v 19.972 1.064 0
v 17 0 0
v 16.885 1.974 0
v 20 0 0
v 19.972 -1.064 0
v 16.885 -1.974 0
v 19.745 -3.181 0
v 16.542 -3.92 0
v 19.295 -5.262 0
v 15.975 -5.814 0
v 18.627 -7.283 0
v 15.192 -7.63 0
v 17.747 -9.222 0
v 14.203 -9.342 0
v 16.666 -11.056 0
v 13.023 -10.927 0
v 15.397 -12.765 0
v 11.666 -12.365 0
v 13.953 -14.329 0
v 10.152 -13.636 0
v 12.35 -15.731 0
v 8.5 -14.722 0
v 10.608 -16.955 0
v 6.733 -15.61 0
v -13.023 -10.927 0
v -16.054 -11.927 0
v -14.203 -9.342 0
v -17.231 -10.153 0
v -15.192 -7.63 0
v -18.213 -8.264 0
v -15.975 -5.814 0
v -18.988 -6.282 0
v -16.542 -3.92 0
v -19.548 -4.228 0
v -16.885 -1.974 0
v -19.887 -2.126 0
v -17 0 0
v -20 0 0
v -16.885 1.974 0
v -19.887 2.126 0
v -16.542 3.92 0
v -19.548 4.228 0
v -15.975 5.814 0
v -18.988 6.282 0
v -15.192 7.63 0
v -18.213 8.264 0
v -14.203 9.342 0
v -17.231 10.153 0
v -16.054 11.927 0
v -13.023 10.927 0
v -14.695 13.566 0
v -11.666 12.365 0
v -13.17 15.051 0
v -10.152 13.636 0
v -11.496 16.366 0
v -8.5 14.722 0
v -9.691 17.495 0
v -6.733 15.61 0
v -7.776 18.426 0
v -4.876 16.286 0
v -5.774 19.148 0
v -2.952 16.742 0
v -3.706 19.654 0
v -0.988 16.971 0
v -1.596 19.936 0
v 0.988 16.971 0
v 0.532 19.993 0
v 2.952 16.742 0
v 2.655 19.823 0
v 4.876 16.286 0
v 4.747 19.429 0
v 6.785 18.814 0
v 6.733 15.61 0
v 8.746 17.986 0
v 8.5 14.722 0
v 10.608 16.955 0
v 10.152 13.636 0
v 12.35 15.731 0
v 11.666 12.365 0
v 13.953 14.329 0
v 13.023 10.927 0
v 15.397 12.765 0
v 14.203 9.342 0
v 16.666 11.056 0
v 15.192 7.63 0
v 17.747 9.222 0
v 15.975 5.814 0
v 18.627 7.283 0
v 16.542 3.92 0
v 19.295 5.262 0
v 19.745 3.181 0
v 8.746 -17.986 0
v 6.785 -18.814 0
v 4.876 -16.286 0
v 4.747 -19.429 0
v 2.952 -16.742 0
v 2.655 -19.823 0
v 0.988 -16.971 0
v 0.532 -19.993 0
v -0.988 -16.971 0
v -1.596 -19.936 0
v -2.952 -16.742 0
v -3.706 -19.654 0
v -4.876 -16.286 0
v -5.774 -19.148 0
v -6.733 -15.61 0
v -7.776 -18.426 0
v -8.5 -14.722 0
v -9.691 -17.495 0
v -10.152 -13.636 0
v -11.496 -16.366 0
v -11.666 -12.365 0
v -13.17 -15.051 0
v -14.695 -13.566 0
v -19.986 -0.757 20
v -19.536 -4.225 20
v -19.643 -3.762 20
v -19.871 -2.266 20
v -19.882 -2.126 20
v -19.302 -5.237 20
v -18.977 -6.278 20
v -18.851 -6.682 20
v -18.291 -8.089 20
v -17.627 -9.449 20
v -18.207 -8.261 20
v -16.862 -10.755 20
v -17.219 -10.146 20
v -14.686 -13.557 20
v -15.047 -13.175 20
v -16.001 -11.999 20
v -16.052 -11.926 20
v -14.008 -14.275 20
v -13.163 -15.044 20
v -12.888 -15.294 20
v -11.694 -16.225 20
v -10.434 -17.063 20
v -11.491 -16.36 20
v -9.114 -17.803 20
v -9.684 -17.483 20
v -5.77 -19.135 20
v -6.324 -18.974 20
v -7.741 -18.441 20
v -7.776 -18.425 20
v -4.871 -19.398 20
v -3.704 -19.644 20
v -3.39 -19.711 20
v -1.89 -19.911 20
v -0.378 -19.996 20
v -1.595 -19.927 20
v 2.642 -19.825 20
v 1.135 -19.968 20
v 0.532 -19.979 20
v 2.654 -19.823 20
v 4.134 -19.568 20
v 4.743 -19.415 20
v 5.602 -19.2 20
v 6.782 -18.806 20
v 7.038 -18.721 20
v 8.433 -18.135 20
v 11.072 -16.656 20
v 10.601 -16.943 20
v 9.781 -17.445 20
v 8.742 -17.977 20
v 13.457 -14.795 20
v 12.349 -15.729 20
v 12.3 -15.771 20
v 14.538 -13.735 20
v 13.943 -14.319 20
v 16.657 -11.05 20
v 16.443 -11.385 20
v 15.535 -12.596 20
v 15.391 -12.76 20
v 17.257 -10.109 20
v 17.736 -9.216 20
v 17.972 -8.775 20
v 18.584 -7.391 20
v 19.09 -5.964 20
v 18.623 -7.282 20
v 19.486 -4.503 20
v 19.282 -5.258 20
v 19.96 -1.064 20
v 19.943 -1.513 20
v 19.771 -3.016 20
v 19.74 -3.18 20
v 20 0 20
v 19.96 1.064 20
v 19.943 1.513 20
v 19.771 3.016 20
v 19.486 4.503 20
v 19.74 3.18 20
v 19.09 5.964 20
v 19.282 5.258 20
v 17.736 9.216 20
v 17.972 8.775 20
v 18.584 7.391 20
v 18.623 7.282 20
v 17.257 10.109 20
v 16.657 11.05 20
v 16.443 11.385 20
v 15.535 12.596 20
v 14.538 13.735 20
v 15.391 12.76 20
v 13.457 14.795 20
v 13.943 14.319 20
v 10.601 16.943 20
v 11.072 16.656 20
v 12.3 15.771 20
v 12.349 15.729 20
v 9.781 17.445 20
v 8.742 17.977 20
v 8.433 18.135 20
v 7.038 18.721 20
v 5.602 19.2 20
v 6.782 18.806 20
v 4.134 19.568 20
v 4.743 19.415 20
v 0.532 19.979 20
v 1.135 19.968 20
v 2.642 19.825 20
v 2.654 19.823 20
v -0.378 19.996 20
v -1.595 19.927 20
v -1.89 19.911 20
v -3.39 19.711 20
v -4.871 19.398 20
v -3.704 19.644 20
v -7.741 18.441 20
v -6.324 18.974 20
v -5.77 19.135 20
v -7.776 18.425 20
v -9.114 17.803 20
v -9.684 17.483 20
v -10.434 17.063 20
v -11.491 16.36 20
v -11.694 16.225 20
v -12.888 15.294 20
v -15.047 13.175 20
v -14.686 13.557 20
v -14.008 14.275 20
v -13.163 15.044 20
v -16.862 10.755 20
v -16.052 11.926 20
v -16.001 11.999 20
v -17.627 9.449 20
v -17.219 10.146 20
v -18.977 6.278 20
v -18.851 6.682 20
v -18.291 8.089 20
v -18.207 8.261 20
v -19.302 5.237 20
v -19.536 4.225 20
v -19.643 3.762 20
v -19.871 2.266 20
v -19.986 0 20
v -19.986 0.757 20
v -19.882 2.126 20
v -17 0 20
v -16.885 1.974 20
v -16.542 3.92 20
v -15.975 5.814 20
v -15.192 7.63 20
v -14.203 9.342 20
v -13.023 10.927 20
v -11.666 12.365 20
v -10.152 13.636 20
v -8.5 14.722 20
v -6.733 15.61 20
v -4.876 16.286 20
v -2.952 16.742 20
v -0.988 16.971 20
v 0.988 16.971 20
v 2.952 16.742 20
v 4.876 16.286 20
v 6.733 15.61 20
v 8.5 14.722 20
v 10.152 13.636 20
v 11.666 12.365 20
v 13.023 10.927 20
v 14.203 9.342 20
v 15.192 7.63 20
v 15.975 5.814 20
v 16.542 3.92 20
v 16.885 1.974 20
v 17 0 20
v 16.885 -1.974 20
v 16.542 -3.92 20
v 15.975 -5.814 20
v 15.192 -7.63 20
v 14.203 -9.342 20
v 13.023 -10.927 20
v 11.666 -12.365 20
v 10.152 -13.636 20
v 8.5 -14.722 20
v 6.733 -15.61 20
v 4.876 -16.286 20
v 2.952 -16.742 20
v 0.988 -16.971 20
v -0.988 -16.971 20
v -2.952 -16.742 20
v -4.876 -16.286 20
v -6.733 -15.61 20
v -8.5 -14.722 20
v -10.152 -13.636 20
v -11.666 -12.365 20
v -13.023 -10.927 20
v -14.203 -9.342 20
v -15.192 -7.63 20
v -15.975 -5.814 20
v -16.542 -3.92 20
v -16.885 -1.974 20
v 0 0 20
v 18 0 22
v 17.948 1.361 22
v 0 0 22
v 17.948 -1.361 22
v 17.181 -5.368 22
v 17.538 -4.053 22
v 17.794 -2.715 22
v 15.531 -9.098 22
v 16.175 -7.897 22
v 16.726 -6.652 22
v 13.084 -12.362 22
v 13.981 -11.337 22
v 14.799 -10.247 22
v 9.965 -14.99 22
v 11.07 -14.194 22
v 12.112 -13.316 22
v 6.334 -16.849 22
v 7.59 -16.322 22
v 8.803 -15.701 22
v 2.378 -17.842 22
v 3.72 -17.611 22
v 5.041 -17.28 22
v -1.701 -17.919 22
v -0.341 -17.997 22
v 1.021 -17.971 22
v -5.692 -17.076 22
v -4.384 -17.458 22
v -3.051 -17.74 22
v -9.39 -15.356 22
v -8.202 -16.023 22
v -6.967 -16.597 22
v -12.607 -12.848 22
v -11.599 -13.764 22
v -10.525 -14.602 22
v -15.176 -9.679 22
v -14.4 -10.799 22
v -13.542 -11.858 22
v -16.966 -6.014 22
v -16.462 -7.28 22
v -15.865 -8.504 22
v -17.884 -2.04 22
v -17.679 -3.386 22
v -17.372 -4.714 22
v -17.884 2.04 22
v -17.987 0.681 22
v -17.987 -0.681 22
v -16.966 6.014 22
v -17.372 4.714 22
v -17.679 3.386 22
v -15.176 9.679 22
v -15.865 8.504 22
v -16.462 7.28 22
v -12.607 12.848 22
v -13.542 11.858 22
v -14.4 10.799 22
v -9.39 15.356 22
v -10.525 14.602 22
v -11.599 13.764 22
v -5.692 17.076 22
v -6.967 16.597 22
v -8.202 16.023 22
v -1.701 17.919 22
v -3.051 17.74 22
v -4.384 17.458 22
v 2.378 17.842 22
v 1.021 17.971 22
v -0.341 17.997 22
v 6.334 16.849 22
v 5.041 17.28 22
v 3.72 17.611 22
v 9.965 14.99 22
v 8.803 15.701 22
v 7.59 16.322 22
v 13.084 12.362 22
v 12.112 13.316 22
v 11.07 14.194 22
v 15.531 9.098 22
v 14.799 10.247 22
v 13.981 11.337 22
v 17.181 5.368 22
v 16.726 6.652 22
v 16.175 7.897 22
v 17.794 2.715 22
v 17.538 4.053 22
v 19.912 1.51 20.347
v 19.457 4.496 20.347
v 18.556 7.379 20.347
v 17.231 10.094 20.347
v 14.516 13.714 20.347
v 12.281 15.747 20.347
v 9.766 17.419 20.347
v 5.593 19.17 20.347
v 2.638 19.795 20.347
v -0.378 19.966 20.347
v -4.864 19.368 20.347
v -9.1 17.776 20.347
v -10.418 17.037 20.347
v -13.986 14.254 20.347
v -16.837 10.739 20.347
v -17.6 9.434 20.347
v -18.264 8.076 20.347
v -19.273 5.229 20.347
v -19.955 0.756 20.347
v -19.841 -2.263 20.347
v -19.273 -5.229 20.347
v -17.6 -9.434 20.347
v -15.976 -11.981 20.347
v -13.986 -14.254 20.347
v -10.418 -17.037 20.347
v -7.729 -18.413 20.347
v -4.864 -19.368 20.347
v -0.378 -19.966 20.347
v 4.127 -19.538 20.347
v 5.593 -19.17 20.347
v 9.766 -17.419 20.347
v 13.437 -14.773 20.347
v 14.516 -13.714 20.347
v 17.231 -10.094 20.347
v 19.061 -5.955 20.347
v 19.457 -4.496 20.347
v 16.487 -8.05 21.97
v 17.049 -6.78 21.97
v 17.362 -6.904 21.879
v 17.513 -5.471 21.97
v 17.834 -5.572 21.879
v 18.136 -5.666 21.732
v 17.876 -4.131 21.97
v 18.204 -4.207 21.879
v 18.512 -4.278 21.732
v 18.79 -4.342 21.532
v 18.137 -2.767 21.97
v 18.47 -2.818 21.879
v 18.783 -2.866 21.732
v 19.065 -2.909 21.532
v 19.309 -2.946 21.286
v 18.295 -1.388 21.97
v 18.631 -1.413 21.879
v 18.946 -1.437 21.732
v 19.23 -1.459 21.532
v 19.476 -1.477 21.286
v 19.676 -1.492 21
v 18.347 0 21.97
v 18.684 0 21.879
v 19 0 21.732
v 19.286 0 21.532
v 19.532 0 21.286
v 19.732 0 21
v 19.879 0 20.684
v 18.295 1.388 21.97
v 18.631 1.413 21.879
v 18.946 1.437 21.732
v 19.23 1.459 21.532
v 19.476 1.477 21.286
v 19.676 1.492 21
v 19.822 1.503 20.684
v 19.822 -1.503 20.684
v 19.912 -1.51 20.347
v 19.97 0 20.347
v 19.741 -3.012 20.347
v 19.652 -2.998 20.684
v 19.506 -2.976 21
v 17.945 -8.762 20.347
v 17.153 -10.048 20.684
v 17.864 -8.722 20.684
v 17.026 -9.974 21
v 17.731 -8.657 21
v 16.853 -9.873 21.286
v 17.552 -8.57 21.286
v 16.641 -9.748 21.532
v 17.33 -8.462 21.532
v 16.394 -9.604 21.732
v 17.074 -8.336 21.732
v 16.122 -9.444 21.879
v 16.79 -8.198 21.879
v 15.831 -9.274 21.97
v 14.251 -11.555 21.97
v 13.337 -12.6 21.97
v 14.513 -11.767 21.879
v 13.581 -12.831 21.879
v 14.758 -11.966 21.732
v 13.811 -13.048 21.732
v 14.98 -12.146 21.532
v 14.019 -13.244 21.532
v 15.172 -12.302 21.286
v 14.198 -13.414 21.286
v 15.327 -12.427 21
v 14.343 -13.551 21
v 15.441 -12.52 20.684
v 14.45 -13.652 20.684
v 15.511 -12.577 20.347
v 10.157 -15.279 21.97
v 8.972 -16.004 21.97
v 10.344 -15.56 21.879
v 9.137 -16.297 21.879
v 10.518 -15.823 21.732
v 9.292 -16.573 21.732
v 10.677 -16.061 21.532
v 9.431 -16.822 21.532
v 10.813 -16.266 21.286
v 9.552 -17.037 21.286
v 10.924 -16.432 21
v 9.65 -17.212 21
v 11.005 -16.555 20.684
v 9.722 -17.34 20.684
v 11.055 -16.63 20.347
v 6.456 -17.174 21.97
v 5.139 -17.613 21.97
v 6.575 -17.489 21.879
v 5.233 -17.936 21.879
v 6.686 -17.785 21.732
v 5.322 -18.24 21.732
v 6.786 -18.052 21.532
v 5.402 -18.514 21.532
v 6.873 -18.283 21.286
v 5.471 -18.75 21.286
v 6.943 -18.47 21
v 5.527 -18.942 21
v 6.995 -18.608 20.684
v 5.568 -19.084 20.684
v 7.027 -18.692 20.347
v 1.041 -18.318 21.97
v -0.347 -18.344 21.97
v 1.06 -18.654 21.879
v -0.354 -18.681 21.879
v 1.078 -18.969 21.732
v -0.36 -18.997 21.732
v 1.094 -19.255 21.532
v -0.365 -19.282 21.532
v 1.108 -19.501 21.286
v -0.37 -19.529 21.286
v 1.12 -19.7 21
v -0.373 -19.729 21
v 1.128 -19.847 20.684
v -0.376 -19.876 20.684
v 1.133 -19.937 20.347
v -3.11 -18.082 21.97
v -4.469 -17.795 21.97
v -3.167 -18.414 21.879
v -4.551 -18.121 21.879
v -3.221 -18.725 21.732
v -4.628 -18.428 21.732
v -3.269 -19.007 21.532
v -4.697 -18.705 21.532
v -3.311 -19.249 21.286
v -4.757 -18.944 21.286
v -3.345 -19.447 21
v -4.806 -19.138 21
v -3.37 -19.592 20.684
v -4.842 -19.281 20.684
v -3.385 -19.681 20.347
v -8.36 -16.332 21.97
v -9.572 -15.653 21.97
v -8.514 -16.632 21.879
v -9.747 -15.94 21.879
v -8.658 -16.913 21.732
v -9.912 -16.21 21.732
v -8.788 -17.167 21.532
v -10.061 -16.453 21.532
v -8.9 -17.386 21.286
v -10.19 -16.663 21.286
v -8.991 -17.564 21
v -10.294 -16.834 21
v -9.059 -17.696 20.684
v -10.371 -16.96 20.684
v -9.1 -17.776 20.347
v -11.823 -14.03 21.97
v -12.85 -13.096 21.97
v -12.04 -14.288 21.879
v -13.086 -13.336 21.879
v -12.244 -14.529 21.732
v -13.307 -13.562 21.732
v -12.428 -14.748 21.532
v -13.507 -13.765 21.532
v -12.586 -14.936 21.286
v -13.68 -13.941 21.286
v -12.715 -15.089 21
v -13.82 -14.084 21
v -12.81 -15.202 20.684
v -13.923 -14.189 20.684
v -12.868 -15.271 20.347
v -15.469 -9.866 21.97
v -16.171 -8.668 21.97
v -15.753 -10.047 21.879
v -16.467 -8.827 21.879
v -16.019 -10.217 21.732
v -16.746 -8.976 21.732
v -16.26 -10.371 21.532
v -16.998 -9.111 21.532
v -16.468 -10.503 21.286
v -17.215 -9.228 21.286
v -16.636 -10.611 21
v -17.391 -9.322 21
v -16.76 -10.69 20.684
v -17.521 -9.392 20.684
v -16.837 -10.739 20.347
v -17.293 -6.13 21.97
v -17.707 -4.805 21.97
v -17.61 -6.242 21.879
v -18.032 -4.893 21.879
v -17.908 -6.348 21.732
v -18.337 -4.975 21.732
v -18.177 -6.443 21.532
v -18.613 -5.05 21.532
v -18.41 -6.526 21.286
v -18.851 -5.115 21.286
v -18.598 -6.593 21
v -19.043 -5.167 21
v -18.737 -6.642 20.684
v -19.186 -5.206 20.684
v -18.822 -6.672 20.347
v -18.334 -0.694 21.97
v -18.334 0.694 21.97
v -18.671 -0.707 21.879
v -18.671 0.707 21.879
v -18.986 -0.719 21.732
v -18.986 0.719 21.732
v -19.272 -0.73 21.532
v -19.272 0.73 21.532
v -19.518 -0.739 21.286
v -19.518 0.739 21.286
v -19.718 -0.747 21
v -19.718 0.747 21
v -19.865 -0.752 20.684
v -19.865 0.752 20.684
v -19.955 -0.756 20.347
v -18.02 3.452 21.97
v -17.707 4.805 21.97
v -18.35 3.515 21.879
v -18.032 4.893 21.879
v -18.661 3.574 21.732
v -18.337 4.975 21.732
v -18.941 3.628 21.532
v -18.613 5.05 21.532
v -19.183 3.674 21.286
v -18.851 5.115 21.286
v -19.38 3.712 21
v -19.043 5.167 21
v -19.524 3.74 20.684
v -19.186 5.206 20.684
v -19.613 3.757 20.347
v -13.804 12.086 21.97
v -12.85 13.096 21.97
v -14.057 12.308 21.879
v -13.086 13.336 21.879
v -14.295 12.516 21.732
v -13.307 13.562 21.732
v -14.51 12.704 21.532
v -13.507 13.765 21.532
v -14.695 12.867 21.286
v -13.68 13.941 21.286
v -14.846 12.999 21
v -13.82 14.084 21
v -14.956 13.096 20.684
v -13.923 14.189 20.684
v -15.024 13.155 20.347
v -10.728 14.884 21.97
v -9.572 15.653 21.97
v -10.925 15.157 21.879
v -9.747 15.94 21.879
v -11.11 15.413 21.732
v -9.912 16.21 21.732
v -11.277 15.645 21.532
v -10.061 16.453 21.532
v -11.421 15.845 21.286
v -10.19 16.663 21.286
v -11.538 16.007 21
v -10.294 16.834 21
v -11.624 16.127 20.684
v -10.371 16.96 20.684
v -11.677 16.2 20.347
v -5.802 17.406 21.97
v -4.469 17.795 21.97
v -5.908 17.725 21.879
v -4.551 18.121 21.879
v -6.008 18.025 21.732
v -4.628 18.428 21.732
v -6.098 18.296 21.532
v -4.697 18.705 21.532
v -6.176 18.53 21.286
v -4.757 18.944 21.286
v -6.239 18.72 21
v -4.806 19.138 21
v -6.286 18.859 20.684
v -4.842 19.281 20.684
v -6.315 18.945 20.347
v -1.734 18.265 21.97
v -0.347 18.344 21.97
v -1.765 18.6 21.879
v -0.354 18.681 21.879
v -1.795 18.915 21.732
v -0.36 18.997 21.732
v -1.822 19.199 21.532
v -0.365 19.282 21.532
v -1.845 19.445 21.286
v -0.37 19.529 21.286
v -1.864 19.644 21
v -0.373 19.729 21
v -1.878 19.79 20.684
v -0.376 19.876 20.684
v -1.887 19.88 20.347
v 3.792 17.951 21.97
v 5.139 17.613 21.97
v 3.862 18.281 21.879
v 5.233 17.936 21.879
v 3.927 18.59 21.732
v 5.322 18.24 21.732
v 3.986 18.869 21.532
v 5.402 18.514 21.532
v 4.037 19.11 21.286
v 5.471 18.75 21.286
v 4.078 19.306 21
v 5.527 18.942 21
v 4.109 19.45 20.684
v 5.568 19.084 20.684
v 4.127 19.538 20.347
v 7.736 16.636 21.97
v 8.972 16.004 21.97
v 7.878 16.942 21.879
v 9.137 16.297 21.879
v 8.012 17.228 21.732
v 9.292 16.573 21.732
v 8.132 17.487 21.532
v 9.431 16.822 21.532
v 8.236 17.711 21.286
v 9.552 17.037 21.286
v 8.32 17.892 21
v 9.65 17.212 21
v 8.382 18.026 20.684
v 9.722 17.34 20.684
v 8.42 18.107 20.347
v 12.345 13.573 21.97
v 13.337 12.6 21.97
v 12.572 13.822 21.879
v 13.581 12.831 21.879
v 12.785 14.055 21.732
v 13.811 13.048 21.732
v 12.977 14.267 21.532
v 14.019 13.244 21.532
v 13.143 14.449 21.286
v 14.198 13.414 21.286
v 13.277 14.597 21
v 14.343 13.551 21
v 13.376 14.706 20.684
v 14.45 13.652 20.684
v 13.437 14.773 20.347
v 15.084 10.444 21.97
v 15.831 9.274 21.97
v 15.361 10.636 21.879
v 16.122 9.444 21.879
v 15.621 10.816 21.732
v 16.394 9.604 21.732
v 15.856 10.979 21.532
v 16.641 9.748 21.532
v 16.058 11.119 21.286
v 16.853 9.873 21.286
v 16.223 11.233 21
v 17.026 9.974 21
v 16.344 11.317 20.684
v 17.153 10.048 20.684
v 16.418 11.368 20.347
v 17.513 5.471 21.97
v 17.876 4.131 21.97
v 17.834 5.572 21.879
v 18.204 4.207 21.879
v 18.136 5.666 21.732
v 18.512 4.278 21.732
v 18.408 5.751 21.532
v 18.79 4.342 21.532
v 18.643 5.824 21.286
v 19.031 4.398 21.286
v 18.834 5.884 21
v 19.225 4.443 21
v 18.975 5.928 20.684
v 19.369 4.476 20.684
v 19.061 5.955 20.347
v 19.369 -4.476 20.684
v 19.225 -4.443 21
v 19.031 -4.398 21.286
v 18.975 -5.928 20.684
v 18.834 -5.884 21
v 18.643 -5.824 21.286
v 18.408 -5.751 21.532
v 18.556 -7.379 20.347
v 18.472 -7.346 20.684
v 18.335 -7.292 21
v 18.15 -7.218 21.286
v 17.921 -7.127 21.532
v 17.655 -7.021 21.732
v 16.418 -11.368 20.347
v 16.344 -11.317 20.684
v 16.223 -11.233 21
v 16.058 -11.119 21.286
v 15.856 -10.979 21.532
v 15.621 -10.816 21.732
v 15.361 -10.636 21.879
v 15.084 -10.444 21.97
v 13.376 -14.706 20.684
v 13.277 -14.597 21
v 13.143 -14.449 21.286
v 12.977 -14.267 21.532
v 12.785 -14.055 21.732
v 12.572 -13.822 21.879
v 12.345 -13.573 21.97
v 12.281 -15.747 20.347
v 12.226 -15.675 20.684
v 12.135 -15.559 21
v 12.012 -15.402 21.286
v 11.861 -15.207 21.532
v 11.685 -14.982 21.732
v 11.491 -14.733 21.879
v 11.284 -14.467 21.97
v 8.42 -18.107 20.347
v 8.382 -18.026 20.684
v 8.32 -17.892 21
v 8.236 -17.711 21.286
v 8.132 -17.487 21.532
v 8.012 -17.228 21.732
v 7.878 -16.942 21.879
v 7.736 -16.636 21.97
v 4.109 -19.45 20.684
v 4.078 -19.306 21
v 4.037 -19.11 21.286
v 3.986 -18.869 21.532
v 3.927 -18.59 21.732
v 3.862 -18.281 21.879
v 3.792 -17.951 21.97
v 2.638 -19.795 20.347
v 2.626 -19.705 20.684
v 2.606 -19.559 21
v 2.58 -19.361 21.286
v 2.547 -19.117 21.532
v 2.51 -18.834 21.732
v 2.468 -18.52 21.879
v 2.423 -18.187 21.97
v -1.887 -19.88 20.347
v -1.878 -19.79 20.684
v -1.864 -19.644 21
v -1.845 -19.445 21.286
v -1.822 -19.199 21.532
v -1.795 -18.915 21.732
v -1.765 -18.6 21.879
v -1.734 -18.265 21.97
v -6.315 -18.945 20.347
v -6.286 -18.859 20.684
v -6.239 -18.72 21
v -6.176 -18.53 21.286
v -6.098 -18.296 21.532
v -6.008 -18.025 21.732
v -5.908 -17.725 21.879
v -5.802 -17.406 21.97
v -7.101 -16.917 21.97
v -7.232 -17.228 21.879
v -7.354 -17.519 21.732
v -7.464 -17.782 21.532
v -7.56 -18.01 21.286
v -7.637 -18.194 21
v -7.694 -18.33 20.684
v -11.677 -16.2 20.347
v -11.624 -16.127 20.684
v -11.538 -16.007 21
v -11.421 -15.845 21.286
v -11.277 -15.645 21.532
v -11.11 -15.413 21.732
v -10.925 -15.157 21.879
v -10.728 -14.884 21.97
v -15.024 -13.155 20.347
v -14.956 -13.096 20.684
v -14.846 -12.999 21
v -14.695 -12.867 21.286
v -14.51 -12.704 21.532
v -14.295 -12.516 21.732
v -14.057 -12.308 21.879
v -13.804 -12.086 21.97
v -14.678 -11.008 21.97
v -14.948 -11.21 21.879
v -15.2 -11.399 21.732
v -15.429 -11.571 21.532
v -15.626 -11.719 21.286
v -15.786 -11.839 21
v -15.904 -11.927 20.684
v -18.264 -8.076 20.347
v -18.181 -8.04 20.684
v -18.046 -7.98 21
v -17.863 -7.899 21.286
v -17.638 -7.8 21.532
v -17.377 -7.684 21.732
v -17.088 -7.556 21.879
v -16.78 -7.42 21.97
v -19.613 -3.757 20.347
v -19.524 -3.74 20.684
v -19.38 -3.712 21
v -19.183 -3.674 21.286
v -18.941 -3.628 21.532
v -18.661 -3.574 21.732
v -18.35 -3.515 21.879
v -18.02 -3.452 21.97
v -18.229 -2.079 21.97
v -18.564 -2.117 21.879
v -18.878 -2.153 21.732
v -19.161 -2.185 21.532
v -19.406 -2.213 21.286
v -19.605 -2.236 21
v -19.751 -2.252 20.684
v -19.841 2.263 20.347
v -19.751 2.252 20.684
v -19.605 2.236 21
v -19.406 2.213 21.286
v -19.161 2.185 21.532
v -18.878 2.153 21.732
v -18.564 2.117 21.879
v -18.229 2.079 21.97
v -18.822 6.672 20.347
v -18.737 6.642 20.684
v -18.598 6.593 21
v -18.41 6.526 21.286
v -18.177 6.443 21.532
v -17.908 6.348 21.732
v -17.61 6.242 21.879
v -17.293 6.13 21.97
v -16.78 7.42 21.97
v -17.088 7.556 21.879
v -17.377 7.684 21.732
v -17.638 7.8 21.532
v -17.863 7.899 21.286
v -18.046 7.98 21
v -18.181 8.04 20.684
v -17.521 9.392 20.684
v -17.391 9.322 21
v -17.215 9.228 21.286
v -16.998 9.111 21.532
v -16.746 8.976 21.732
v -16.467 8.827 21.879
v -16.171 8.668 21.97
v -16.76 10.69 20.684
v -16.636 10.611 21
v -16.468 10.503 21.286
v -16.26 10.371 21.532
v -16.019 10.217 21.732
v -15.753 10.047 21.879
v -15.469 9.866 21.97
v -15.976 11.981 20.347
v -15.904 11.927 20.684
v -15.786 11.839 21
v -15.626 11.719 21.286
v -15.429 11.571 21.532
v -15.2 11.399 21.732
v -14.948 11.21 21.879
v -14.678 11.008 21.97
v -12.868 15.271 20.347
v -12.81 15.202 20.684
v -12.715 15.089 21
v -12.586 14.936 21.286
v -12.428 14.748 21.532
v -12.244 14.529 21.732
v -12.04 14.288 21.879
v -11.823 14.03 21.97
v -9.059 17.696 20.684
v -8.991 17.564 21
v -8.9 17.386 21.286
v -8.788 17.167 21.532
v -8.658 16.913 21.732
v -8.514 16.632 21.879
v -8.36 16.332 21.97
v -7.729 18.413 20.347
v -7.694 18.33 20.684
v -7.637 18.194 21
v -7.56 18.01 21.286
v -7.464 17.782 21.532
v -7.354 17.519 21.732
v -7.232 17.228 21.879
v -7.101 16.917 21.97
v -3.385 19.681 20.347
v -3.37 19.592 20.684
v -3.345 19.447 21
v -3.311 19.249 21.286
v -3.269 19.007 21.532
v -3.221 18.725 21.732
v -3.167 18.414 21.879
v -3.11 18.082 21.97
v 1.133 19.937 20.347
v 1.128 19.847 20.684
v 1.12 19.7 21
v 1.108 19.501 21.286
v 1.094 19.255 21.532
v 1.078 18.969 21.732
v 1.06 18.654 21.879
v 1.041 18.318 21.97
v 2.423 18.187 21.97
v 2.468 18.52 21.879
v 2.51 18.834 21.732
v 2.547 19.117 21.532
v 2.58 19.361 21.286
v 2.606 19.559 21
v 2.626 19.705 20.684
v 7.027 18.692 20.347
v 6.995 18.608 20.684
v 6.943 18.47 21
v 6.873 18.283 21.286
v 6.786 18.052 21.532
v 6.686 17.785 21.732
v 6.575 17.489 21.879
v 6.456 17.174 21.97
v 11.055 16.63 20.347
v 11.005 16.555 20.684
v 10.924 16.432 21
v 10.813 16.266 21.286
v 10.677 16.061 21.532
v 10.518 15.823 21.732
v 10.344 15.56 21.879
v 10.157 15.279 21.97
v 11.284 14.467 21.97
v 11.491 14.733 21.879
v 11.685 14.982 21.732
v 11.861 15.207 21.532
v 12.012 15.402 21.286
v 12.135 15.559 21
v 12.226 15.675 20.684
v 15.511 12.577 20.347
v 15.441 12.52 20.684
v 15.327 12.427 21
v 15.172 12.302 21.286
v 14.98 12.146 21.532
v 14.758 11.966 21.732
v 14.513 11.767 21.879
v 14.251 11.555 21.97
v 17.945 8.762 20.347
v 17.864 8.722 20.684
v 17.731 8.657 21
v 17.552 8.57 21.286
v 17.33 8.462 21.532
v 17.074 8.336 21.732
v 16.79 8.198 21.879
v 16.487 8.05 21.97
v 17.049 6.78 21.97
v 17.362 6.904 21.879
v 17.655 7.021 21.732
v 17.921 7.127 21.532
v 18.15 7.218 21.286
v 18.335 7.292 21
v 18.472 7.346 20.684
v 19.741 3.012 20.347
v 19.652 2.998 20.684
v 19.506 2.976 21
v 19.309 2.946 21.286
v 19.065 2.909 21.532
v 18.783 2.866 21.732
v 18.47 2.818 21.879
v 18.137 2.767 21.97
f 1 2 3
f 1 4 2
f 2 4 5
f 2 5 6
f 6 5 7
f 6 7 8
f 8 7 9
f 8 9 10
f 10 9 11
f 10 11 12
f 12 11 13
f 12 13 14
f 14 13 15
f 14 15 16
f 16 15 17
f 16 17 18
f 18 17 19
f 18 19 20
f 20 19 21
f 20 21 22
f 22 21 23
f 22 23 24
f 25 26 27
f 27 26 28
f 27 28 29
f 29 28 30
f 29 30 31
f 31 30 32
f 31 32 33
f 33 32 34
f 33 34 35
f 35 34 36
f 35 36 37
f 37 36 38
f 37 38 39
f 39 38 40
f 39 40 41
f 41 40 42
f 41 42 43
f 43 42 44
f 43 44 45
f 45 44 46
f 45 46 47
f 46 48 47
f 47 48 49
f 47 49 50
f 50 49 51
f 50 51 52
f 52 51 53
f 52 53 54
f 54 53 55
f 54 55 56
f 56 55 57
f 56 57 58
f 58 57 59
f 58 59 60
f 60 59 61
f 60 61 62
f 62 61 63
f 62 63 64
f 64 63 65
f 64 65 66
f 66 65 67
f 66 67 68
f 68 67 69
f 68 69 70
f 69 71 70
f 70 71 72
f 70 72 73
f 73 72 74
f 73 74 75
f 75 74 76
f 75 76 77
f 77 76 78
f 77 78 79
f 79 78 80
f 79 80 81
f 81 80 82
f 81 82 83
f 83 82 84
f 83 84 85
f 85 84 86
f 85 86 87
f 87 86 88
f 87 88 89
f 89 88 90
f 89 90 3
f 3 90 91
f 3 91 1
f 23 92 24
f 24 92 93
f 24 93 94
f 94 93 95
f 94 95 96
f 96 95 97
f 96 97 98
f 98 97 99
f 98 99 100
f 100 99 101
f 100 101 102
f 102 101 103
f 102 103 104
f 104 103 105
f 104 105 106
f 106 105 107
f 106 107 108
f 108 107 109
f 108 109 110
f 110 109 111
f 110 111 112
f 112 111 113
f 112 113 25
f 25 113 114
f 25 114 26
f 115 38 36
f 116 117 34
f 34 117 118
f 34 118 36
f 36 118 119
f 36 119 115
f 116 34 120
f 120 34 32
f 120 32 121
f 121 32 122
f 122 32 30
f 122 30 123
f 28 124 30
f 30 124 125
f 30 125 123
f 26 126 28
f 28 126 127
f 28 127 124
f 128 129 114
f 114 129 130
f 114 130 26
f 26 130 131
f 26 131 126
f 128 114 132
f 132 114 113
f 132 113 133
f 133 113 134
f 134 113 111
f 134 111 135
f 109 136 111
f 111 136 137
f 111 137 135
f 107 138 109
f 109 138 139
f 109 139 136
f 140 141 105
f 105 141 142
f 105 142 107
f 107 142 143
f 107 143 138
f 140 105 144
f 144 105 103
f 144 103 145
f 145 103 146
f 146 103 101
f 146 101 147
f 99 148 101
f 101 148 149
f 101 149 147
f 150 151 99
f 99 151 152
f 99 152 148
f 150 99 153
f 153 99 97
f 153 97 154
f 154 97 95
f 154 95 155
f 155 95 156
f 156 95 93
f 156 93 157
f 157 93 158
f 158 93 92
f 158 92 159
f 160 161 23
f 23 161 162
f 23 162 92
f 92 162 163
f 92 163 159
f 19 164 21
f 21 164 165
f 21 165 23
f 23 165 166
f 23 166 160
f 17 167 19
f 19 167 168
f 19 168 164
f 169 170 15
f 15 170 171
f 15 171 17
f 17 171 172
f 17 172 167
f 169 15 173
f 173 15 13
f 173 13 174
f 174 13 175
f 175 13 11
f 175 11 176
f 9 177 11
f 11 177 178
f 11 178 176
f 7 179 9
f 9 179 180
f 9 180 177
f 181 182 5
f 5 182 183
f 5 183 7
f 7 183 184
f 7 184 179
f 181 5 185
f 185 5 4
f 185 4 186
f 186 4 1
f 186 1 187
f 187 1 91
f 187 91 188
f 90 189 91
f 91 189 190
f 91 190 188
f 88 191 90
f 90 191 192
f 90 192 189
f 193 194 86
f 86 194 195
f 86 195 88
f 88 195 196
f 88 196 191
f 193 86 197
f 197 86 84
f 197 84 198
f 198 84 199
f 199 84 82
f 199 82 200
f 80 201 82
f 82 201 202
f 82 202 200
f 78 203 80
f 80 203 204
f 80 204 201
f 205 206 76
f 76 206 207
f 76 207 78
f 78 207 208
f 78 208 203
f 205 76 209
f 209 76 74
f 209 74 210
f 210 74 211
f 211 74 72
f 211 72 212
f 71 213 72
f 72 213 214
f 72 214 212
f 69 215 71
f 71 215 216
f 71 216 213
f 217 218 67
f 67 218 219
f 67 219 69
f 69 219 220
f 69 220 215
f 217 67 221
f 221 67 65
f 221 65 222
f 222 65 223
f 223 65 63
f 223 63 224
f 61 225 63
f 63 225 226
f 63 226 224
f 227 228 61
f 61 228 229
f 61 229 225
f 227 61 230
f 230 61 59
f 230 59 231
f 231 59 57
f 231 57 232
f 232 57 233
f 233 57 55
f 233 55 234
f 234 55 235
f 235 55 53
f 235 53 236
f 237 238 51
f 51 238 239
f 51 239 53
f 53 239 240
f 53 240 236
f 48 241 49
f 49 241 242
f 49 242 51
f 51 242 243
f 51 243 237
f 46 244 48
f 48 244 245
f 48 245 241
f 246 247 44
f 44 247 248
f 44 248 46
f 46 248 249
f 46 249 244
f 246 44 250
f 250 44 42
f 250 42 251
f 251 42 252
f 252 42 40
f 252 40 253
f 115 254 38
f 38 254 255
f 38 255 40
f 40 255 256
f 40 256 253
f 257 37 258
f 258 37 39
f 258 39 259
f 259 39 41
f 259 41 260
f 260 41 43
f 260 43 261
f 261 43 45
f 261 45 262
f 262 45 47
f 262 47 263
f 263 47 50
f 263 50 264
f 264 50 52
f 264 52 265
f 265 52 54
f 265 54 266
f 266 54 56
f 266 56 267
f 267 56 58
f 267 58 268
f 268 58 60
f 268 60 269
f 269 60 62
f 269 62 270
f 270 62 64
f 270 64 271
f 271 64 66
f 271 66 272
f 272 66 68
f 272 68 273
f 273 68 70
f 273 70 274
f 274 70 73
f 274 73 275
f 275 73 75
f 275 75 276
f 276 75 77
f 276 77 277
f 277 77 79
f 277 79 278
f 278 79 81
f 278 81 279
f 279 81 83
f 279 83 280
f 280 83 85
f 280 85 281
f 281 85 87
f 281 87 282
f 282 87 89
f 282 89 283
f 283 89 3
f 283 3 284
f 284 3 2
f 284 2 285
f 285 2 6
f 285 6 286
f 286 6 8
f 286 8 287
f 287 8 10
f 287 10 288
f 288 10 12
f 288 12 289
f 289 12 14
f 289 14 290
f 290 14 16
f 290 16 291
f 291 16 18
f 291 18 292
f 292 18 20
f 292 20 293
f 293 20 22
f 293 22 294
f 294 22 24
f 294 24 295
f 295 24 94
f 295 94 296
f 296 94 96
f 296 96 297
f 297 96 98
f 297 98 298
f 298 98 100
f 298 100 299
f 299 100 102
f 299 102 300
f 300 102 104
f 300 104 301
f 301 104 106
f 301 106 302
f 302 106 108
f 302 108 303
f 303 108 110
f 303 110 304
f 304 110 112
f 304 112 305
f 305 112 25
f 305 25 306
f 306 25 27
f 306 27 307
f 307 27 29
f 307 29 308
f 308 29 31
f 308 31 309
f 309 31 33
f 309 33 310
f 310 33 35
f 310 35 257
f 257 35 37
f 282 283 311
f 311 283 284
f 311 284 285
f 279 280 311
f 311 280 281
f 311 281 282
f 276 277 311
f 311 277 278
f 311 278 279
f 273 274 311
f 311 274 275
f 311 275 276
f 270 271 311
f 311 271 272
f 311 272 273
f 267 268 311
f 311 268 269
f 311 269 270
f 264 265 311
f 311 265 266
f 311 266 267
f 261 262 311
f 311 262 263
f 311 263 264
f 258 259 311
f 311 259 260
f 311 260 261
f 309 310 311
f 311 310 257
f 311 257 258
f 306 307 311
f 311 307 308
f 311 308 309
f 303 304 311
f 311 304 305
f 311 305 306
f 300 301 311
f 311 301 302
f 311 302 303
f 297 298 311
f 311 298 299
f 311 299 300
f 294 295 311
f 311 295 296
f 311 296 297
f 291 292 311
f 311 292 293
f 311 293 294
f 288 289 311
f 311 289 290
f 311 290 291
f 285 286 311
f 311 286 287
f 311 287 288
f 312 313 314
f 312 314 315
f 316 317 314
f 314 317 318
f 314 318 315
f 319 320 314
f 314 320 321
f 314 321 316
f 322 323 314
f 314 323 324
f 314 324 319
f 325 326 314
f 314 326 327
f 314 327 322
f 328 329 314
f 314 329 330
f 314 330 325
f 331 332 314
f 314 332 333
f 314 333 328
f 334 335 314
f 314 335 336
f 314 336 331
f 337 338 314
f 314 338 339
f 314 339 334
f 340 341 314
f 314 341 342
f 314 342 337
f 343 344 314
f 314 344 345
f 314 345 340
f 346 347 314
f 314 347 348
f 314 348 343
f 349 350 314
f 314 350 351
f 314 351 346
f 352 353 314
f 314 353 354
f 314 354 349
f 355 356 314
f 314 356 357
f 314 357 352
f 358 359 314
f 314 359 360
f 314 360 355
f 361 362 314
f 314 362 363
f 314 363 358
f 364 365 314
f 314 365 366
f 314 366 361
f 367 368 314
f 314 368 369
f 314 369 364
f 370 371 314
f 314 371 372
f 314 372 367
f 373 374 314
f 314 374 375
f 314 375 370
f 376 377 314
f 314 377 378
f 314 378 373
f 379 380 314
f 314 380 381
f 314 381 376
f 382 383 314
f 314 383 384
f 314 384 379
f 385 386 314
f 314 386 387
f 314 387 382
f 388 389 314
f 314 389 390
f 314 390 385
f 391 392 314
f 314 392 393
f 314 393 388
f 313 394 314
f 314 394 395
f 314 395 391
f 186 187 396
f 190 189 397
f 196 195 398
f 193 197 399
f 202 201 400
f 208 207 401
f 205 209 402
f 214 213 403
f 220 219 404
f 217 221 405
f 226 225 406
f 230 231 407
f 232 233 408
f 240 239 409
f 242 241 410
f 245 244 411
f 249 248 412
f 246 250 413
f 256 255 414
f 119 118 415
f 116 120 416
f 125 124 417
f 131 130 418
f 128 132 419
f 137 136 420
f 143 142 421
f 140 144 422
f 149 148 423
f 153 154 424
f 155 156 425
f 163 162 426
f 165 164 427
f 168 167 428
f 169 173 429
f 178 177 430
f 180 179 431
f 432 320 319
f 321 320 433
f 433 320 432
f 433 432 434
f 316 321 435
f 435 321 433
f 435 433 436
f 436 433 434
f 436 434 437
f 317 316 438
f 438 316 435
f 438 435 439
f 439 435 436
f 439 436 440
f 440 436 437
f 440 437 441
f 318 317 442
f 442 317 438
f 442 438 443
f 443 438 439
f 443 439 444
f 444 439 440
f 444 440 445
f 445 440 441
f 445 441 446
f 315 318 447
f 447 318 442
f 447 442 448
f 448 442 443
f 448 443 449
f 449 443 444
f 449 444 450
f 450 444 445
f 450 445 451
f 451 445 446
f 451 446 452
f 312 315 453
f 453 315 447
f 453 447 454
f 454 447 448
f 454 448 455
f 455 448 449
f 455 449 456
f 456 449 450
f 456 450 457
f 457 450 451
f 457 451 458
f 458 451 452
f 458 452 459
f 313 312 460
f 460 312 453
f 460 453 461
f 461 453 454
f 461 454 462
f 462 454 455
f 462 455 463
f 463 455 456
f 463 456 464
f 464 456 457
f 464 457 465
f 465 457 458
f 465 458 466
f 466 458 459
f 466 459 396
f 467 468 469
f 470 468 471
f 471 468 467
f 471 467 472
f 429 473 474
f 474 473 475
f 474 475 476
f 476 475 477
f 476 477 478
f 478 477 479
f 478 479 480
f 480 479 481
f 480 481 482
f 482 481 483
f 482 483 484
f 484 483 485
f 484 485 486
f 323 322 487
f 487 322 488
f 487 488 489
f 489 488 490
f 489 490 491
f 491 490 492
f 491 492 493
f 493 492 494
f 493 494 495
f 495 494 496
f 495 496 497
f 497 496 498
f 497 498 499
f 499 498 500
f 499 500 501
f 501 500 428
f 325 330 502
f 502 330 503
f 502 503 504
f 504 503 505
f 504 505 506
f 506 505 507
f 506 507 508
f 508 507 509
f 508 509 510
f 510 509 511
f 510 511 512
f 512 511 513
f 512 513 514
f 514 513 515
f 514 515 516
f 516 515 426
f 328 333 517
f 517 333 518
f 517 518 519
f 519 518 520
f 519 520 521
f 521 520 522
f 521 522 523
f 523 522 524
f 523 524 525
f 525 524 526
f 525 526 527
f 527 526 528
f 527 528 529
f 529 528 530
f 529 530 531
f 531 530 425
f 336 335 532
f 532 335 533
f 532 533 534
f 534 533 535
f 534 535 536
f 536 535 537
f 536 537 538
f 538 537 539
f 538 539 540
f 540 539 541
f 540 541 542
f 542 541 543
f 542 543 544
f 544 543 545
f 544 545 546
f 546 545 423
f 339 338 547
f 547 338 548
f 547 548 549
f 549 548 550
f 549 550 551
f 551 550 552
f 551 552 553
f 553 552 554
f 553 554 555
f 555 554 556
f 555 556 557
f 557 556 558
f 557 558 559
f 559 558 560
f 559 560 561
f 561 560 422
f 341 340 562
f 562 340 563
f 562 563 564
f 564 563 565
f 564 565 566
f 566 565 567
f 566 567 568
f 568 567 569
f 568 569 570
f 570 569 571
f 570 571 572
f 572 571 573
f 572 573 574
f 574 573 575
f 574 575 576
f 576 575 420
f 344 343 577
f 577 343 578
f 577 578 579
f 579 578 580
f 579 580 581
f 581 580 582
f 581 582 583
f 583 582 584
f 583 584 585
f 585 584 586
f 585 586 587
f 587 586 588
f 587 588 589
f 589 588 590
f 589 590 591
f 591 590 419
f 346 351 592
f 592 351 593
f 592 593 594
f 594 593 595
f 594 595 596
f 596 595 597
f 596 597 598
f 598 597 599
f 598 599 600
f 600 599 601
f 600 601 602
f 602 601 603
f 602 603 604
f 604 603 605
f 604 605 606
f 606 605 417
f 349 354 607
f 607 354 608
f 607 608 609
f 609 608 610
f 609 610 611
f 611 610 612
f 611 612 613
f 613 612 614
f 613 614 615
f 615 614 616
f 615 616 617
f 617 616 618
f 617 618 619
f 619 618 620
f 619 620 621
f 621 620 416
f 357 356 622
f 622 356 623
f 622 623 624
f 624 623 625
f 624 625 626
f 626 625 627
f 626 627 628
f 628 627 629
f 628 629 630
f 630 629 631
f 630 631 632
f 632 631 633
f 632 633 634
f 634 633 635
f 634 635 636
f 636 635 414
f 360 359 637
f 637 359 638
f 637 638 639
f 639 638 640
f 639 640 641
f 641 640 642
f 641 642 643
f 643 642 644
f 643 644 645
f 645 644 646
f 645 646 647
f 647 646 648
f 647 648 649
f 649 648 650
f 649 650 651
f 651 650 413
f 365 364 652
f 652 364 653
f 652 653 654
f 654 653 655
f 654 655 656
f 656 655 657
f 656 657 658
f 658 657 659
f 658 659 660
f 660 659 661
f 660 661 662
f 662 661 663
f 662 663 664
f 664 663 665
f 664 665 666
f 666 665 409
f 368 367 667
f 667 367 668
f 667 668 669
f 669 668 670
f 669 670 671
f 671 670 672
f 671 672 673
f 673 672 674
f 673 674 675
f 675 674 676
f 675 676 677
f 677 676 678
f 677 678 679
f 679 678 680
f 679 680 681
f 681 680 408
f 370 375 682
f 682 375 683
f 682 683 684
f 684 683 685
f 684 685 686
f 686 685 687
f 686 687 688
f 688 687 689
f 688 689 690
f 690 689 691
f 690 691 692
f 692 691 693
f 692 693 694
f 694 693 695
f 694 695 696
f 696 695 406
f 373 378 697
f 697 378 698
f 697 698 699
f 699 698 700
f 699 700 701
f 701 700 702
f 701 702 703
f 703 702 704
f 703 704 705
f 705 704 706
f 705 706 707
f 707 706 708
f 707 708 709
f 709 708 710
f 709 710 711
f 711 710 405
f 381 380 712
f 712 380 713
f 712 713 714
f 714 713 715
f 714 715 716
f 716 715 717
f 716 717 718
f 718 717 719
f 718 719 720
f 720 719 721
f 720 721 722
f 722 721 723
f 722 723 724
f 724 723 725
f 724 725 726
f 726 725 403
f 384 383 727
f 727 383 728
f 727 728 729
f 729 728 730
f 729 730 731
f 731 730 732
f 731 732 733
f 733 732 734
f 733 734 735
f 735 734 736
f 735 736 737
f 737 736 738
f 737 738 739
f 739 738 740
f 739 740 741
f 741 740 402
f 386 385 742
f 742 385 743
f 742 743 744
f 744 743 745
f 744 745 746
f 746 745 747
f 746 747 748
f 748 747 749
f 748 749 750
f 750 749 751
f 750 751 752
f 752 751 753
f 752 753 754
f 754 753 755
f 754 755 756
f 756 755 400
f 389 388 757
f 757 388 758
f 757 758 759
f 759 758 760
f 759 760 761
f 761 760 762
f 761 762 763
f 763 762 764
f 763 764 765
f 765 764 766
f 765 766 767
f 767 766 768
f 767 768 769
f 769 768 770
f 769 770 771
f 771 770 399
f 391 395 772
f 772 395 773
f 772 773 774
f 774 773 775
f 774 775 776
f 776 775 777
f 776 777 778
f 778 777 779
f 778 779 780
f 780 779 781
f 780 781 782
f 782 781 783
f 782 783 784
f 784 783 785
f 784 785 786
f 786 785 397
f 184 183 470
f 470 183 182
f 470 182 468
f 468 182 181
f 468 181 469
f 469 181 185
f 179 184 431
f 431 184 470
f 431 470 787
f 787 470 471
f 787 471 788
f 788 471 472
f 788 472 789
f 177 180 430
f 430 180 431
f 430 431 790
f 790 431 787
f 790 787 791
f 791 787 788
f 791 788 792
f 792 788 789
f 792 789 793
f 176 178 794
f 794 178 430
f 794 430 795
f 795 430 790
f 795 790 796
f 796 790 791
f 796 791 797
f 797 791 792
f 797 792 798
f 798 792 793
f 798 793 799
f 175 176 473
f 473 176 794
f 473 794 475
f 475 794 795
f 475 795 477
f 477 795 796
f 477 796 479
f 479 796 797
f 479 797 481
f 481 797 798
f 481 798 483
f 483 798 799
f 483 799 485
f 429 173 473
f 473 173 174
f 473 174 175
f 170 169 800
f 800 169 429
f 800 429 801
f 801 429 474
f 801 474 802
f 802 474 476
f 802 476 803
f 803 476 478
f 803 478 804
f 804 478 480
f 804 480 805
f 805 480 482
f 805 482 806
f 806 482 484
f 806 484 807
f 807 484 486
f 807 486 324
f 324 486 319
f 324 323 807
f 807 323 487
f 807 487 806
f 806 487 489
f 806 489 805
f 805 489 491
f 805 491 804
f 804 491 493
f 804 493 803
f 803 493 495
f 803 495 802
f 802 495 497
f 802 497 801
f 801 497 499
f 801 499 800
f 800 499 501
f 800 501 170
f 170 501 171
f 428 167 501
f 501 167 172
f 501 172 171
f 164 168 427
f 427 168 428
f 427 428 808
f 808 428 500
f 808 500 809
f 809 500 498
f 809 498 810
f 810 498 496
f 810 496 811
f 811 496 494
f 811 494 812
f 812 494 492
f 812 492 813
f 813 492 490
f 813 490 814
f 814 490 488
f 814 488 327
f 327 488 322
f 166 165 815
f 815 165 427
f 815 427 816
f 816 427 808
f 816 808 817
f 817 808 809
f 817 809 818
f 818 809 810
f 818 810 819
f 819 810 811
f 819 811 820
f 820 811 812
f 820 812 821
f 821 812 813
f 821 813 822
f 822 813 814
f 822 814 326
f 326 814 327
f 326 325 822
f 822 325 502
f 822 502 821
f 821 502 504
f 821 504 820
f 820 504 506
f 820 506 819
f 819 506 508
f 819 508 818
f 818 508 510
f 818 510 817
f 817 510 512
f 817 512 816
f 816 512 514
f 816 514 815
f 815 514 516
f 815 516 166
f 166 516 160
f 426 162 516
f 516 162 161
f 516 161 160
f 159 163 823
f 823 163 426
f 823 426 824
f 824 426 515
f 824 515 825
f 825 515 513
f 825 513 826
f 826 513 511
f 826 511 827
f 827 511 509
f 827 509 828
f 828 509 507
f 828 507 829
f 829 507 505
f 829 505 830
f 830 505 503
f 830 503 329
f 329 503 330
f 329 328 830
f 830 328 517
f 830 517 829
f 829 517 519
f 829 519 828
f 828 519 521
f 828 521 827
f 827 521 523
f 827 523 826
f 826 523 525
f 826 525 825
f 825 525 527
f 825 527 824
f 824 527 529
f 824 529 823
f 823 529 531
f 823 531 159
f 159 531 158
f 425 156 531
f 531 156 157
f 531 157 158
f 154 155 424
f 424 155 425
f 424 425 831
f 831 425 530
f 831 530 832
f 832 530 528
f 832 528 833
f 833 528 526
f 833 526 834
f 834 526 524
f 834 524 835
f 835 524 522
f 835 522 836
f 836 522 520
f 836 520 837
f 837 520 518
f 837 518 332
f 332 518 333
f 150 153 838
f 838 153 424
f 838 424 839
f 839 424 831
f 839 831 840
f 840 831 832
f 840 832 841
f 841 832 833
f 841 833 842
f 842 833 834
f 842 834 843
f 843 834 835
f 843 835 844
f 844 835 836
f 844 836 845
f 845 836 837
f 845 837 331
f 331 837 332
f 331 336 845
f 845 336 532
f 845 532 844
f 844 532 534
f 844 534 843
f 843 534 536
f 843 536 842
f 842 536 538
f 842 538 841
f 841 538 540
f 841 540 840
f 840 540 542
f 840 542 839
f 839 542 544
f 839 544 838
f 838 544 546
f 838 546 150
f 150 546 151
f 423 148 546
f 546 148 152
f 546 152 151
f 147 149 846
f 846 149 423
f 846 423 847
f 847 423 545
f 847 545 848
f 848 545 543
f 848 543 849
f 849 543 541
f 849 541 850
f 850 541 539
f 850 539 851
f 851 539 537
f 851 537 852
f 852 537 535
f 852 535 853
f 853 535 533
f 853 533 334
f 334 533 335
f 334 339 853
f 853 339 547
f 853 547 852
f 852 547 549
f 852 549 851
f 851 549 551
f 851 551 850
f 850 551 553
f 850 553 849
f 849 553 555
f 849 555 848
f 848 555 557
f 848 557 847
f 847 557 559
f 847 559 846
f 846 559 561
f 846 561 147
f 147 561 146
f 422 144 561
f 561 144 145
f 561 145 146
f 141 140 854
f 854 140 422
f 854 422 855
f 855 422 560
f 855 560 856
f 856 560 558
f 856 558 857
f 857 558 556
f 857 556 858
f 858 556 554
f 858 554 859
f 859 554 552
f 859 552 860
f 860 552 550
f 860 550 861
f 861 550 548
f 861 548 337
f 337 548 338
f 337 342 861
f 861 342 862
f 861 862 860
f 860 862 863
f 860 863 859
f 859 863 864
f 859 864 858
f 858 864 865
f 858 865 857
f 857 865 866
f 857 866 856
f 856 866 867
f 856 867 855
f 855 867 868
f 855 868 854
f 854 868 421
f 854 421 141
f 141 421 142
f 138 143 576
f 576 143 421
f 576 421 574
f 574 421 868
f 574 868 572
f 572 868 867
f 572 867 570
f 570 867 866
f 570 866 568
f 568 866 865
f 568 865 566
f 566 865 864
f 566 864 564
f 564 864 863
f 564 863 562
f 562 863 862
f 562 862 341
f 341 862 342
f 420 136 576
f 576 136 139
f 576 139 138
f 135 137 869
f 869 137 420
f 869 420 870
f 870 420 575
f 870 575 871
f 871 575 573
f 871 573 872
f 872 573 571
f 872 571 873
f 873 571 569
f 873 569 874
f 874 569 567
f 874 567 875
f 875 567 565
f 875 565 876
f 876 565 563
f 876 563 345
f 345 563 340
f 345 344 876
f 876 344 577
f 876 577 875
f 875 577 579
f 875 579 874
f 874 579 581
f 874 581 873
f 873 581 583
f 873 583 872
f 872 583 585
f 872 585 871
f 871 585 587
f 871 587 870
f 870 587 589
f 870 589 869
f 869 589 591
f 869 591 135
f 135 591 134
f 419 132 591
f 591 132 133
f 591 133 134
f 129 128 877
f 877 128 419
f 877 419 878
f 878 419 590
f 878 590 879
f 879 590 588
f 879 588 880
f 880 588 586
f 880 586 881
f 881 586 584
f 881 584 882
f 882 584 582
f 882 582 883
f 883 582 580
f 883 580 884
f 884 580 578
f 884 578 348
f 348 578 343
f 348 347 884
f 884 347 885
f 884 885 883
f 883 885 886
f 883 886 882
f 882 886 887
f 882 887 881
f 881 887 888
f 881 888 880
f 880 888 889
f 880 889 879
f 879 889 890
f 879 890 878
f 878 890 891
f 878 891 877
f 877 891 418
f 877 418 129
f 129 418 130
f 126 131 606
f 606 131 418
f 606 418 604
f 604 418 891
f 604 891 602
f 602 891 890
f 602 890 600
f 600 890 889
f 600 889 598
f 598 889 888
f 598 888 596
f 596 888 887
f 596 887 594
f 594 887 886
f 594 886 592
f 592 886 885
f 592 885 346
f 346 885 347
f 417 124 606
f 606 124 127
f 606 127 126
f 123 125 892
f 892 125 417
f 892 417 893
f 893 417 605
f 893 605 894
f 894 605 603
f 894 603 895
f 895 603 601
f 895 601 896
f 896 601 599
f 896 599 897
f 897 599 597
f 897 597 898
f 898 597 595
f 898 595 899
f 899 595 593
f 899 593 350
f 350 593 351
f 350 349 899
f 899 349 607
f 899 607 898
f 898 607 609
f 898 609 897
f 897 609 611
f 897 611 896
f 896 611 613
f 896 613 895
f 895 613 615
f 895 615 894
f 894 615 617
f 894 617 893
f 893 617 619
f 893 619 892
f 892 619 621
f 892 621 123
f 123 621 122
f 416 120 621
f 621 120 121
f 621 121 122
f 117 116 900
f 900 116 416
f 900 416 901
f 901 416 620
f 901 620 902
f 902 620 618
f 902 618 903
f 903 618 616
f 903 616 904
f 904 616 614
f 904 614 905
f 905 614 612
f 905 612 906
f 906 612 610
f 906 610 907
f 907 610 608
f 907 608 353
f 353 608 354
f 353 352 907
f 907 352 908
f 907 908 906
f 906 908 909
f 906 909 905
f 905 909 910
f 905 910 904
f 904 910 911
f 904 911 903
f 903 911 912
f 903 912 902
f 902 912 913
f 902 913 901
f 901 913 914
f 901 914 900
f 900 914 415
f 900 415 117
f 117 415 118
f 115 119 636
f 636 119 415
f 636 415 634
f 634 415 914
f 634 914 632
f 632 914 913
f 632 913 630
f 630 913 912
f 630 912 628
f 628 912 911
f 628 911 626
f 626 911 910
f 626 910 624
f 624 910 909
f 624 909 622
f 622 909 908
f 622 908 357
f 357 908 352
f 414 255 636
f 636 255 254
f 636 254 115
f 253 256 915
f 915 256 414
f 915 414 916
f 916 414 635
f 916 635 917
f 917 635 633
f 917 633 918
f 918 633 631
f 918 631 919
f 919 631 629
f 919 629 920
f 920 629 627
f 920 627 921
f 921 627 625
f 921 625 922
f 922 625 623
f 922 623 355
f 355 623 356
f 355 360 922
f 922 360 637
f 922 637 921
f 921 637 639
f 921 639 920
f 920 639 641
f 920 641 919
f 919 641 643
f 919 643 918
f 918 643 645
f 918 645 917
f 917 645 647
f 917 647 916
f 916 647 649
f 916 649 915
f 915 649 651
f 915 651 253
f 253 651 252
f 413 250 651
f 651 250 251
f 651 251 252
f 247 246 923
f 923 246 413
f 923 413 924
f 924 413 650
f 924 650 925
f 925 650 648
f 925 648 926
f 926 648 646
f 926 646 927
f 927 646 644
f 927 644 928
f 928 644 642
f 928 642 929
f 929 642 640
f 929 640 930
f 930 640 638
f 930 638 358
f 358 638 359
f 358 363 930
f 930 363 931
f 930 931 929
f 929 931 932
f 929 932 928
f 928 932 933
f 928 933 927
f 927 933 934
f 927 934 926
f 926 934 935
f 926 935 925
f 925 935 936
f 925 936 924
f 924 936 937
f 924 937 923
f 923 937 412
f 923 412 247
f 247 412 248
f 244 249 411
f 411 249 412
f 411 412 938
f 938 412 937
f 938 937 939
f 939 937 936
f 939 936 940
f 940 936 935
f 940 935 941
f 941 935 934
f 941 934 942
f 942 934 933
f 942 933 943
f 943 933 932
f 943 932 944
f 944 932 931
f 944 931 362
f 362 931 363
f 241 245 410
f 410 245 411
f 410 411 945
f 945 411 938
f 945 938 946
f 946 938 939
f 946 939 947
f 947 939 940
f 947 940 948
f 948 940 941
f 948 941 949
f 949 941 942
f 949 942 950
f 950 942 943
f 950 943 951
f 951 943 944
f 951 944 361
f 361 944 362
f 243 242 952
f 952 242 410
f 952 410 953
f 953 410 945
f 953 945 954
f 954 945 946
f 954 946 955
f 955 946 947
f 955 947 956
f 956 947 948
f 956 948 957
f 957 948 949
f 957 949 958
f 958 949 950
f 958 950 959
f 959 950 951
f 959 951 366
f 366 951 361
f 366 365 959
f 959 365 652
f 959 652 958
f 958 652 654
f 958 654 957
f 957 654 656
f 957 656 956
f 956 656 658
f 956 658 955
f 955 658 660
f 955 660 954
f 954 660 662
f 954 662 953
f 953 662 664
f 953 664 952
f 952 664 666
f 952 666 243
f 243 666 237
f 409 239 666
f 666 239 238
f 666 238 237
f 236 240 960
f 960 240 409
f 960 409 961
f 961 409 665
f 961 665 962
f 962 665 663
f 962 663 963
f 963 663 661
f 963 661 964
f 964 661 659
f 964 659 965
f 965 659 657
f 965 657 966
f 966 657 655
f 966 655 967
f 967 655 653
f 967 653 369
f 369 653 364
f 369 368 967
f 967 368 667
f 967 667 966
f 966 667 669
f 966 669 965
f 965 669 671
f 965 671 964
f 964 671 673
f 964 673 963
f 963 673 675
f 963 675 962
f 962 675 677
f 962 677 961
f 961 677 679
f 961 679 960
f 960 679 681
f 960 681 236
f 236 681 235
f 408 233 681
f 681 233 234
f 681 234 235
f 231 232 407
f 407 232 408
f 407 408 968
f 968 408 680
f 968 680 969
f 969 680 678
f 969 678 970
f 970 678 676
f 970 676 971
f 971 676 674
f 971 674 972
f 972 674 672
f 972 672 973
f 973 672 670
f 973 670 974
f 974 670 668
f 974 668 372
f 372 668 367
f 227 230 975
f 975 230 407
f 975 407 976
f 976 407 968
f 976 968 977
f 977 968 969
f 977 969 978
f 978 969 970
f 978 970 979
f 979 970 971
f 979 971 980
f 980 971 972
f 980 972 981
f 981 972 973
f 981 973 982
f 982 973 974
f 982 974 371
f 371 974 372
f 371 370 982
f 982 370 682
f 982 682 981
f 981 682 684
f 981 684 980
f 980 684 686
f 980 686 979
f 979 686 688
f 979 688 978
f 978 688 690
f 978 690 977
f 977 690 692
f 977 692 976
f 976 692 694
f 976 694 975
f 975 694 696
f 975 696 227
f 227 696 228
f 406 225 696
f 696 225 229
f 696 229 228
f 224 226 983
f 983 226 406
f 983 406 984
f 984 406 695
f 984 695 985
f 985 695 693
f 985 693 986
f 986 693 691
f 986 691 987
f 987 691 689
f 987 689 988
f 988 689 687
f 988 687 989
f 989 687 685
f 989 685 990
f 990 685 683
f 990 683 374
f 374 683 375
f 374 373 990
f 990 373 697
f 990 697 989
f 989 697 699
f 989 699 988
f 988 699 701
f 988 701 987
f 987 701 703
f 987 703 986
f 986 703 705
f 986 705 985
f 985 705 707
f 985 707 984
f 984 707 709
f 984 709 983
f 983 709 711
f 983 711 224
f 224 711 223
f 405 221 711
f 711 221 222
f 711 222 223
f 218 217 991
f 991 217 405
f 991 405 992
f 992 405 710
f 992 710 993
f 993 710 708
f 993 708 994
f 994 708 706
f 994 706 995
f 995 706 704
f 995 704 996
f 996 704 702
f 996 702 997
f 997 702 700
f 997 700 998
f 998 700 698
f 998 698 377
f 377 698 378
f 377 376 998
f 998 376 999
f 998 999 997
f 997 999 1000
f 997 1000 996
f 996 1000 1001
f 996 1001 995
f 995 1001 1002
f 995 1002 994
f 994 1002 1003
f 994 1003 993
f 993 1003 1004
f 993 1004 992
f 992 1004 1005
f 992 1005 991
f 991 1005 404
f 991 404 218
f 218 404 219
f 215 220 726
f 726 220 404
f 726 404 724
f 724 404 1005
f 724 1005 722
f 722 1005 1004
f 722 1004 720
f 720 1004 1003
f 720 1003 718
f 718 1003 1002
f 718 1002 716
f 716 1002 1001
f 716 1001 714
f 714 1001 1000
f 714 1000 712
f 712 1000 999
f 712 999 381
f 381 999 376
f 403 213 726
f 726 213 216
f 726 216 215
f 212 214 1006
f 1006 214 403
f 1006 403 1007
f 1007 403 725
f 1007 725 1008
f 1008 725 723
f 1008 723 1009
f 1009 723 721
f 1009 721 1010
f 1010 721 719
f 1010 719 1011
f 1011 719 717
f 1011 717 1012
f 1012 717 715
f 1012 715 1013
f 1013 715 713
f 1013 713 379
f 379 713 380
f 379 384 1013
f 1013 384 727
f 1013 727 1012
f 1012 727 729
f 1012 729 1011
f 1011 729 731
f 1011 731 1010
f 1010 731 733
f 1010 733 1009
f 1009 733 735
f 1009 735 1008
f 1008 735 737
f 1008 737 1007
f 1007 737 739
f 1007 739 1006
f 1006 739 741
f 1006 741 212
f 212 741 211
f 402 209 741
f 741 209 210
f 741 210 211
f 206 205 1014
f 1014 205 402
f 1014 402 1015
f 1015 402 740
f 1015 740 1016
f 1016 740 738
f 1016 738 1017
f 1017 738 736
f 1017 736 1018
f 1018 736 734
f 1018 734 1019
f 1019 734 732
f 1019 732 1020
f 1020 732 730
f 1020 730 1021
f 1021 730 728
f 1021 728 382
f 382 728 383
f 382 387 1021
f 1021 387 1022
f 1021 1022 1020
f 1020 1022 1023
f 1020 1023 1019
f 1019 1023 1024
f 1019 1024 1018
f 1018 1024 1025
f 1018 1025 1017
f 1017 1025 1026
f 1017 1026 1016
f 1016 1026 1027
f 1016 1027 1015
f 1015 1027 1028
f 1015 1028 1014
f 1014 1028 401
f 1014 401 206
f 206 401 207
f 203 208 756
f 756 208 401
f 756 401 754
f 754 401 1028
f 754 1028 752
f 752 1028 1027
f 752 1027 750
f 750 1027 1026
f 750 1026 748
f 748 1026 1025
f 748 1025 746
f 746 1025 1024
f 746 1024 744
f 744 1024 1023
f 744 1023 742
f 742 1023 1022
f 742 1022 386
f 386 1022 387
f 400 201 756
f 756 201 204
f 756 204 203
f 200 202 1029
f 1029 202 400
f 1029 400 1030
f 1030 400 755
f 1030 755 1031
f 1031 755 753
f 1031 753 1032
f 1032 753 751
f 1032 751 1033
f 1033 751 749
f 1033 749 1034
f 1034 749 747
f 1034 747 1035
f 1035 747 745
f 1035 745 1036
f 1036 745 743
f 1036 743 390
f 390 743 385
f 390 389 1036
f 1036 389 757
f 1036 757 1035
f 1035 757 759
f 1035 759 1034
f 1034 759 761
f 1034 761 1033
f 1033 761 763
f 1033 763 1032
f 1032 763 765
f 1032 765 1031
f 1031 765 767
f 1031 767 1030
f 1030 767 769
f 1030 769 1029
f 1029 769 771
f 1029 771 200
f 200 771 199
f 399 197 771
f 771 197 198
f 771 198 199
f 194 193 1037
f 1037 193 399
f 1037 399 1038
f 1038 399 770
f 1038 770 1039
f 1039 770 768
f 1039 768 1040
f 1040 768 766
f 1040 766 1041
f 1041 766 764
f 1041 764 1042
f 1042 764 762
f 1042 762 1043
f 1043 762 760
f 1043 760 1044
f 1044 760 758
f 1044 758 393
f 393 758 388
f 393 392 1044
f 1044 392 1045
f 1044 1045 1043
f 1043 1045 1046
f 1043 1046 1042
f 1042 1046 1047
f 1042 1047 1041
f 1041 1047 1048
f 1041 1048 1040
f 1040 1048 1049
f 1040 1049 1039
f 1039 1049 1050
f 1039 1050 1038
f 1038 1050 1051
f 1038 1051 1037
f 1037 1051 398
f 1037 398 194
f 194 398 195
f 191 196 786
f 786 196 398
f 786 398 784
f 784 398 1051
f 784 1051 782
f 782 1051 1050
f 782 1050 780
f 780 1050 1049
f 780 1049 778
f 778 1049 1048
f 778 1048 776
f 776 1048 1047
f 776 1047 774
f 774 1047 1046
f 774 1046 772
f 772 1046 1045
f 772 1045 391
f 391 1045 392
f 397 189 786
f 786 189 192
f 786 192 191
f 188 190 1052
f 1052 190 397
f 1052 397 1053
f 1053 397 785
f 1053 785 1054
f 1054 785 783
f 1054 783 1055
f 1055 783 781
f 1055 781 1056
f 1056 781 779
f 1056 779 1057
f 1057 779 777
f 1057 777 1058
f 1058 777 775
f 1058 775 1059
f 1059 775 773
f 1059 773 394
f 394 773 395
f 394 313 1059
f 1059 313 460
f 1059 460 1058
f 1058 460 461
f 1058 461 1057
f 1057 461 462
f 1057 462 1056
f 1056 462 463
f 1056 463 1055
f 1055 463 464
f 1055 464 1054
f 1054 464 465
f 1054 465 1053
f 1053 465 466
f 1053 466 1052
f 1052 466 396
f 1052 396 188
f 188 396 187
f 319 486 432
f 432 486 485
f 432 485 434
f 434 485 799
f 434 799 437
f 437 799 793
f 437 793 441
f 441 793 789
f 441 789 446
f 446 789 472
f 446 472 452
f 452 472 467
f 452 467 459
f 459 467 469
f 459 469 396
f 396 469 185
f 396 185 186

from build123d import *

# Parameters (mm, degrees)
SKETCH1_R           = 20
SKETCH1_R_2         = 17
BOSS_EXTRUDE1_DEPTH = 20
SKETCH2_R           = 20
BOSS_EXTRUDE2_DEPTH = 2
FILLET1_R           = 2


with BuildPart() as part:
    # Sketch1 → Boss-Extrude1 (new body)
    with BuildSketch(Plane.XY):
        Circle(SKETCH1_R)
        Circle(SKETCH1_R_2, mode=Mode.SUBTRACT)
    extrude(amount=BOSS_EXTRUDE1_DEPTH)

    # Sketch2 → Boss-Extrude2 (add)
    with BuildSketch(Plane.XY.offset(20)):
        Circle(SKETCH2_R)
    extrude(amount=BOSS_EXTRUDE2_DEPTH)

    # Fillet1
    fillet1_edges = [part.edges().sort_by_distance(p)[0] for p in [
        (-20, 0, 22),
    ]]
    fillet(fillet1_edges, radius=FILLET1_R)


solid = part.part
